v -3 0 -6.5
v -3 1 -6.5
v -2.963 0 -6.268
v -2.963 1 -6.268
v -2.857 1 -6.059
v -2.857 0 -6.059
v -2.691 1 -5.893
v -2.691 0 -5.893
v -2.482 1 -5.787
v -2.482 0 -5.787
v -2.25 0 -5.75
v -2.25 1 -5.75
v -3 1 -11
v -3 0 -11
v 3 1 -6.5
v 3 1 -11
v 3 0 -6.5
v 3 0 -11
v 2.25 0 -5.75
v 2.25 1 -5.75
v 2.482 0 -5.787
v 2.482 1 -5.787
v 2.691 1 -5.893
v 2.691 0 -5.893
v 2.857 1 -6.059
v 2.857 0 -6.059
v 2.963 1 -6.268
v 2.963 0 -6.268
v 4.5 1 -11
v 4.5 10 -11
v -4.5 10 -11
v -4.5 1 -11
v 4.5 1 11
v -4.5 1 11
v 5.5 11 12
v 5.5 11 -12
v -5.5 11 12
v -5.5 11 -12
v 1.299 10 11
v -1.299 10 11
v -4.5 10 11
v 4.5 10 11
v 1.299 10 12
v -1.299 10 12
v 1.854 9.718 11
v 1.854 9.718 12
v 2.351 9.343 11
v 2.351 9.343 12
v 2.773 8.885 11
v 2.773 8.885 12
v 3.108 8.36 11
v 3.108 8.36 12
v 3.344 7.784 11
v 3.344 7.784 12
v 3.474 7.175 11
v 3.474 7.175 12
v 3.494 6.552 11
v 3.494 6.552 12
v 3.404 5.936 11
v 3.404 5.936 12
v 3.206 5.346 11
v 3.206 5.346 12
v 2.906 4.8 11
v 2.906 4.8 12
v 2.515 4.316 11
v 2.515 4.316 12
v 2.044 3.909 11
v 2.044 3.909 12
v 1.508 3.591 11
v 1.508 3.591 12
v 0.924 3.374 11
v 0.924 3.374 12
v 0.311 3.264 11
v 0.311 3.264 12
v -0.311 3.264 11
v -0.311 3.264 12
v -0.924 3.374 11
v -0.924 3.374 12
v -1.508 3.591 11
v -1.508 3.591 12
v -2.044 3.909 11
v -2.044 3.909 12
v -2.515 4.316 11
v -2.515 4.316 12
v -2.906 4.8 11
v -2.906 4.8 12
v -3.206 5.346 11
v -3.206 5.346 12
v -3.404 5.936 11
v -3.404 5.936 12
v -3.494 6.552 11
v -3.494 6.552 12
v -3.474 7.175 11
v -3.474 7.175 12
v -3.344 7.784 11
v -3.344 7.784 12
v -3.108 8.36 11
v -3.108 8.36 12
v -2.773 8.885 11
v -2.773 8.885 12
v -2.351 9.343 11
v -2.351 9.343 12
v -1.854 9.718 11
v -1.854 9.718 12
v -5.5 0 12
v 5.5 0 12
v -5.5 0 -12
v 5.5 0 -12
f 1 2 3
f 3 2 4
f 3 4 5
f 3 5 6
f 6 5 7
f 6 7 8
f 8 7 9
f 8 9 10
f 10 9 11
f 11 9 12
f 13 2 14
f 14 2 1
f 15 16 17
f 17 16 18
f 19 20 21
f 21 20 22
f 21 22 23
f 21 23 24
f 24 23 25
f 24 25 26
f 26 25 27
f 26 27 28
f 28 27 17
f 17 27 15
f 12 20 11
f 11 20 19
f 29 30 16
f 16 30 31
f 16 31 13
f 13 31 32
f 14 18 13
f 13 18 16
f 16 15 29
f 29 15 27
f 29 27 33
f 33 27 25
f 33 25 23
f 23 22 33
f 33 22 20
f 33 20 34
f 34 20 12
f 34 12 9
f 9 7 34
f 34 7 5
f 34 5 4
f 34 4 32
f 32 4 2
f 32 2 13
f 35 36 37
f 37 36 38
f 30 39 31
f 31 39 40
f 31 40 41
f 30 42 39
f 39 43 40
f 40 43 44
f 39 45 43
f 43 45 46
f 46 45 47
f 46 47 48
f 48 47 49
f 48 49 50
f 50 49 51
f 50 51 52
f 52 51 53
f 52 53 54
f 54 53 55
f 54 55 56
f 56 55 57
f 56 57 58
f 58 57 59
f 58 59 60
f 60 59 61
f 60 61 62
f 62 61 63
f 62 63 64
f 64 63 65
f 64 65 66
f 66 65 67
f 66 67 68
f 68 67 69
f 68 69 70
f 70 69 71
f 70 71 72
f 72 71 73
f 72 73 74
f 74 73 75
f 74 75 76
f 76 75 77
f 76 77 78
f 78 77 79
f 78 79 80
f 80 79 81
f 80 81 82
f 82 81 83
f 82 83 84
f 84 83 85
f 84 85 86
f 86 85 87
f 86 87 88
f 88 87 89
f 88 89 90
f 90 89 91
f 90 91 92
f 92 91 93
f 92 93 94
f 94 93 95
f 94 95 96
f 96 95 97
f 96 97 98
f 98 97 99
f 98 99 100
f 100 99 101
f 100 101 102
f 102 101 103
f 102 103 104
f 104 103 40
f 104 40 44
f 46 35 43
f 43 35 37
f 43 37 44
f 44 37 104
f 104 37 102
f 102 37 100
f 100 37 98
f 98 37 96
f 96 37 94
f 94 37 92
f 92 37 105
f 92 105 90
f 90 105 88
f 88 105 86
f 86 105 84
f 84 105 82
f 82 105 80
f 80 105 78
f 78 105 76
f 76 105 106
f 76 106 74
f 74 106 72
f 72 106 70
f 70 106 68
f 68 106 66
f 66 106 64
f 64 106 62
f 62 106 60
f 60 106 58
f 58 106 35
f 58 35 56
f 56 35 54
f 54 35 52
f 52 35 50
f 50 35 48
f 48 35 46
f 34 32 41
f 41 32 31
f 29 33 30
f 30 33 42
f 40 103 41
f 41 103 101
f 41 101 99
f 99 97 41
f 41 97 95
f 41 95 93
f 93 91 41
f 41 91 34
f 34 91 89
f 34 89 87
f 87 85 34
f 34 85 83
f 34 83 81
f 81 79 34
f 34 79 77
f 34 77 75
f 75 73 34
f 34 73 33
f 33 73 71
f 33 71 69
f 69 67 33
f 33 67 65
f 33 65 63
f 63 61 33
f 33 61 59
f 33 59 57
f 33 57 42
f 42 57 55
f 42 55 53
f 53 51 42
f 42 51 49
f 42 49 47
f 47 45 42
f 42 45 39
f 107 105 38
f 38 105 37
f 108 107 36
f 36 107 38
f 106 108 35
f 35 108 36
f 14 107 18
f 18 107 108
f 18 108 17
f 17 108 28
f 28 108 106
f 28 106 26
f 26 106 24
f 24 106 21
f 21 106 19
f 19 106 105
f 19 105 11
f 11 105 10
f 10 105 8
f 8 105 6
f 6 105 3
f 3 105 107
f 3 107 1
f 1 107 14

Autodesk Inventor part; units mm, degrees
ref_plane "YZ Plane" through (0, 0, 0) normal (1, 0, 0) x (0, 1, 0)
ref_plane "XZ Plane" through (0, 0, 0) normal (0, 1, 0) x (-1, 0, 0)
ref_plane "XY Plane" through (0, 0, 0) normal (0, 0, 1) x (1, 0, 0)
sketch "Sketch1" plane through (0, 0, 0) normal (0, 1, 0) x (-1, 0, 0)
  line L0 (-5.5, -12) -> (5.5, -12)
  line L1 (5.5, -12) -> (5.5, 12)
  line L2 (5.5, 12) -> (-5.5, 12)
  line L3 (-5.5, 12) -> (-5.5, -12)
  line L4 (-5.5, -12) -> (5.5, 12) construction
  line L5 (5.5, -12) -> (-5.5, 12) construction
  point P0 (0, 0)
  dimension "d0" = 11
  dimension "d1" = 24
extrude "Extrusion1" add sketch "Sketch1" along normal blind 10
shell "Shell1" thickness 1 removed faces 1 at (1.8333, 10, 4)
sketch "Sketch2" plane through (-5.5, 0, 12) normal (0, 0, 1) x (1, 0, 0)
  line L0 (0, 10) -> (11, 10) projected
  circle A0 centre (5.5, 6.75) radius 3.5
  point P0 (5.5, 0)
  point P1 (4.201, 10)
  point P2 (6.799, 10)
  dimension "d5" = 7
  dimension "d6" = 0.25
extrude "Extrusion2" cut sketch "Sketch2" against normal blind 9 contours L0 A0 picked at (4.7002, 5.9949)
sketch "Sketch3" plane through (0, 10, 0) normal (0, 1, 0) x (1, 0, 0)
  line L0 (1.299, -12) -> (5.5, -12) projected
  line L1 (5.5, -12) -> (5.5, 12) projected
  line L2 (5.5, 12) -> (-5.5, 12) projected
  line L3 (-5.5, 12) -> (-5.5, -12) projected
  line L4 (-5.5, -12) -> (-1.299, -12) projected
  line L5 (-5.5, 12) -> (5.5, 12)
  line L6 (5.5, 12) -> (5.5, -12)
  line L7 (5.5, -12) -> (-5.5, -12)
  line L8 (-5.5, -12) -> (-5.5, 12)
  point P0 (0, 0)
  point P1 (-1.299, -12)
extrude "Extrusion3" add sketch "Sketch3" along normal blind 1
sketch "Sketch5" plane through (0, 0, 0) normal (0, -1, 0) x (1, 0, 0)
  line L0 (4.5, -11) -> (-4.5, -11) projected
  line L1 (3, -11) -> (-3, -11)
  line L2 (-3, -11) -> (-3, -6.5)
  line L3 (-2.25, -5.75) -> (2.25, -5.75)
  line L4 (3, -6.5) -> (3, -11)
  arc A0 (3, -6.5) -> (2.25, -5.75) centre (2.25, -6.5) ccw
  arc A1 (-2.25, -5.75) -> (-3, -6.5) centre (-2.25, -6.5) ccw
  line L5 (-5.5, -12) -> (-5.5, 12) projected
  line L6 (5.5, 12) -> (5.5, -12) projected
  line L7 (-3, -11) -> (-5.5, -11)
  line L8 (3, -11) -> (5.5, -11)
  point P0 (0, 0)
  point P1 (3, -5.75)
  dimension "d19" = 5.25
  dimension "d20" = 0.75
  dimension "d23" = 6
extrude "Extrusion5" cut sketch "Sketch5" against normal blind 10
properties part number "carcasaXeotype_FLEX-SENSOR"
